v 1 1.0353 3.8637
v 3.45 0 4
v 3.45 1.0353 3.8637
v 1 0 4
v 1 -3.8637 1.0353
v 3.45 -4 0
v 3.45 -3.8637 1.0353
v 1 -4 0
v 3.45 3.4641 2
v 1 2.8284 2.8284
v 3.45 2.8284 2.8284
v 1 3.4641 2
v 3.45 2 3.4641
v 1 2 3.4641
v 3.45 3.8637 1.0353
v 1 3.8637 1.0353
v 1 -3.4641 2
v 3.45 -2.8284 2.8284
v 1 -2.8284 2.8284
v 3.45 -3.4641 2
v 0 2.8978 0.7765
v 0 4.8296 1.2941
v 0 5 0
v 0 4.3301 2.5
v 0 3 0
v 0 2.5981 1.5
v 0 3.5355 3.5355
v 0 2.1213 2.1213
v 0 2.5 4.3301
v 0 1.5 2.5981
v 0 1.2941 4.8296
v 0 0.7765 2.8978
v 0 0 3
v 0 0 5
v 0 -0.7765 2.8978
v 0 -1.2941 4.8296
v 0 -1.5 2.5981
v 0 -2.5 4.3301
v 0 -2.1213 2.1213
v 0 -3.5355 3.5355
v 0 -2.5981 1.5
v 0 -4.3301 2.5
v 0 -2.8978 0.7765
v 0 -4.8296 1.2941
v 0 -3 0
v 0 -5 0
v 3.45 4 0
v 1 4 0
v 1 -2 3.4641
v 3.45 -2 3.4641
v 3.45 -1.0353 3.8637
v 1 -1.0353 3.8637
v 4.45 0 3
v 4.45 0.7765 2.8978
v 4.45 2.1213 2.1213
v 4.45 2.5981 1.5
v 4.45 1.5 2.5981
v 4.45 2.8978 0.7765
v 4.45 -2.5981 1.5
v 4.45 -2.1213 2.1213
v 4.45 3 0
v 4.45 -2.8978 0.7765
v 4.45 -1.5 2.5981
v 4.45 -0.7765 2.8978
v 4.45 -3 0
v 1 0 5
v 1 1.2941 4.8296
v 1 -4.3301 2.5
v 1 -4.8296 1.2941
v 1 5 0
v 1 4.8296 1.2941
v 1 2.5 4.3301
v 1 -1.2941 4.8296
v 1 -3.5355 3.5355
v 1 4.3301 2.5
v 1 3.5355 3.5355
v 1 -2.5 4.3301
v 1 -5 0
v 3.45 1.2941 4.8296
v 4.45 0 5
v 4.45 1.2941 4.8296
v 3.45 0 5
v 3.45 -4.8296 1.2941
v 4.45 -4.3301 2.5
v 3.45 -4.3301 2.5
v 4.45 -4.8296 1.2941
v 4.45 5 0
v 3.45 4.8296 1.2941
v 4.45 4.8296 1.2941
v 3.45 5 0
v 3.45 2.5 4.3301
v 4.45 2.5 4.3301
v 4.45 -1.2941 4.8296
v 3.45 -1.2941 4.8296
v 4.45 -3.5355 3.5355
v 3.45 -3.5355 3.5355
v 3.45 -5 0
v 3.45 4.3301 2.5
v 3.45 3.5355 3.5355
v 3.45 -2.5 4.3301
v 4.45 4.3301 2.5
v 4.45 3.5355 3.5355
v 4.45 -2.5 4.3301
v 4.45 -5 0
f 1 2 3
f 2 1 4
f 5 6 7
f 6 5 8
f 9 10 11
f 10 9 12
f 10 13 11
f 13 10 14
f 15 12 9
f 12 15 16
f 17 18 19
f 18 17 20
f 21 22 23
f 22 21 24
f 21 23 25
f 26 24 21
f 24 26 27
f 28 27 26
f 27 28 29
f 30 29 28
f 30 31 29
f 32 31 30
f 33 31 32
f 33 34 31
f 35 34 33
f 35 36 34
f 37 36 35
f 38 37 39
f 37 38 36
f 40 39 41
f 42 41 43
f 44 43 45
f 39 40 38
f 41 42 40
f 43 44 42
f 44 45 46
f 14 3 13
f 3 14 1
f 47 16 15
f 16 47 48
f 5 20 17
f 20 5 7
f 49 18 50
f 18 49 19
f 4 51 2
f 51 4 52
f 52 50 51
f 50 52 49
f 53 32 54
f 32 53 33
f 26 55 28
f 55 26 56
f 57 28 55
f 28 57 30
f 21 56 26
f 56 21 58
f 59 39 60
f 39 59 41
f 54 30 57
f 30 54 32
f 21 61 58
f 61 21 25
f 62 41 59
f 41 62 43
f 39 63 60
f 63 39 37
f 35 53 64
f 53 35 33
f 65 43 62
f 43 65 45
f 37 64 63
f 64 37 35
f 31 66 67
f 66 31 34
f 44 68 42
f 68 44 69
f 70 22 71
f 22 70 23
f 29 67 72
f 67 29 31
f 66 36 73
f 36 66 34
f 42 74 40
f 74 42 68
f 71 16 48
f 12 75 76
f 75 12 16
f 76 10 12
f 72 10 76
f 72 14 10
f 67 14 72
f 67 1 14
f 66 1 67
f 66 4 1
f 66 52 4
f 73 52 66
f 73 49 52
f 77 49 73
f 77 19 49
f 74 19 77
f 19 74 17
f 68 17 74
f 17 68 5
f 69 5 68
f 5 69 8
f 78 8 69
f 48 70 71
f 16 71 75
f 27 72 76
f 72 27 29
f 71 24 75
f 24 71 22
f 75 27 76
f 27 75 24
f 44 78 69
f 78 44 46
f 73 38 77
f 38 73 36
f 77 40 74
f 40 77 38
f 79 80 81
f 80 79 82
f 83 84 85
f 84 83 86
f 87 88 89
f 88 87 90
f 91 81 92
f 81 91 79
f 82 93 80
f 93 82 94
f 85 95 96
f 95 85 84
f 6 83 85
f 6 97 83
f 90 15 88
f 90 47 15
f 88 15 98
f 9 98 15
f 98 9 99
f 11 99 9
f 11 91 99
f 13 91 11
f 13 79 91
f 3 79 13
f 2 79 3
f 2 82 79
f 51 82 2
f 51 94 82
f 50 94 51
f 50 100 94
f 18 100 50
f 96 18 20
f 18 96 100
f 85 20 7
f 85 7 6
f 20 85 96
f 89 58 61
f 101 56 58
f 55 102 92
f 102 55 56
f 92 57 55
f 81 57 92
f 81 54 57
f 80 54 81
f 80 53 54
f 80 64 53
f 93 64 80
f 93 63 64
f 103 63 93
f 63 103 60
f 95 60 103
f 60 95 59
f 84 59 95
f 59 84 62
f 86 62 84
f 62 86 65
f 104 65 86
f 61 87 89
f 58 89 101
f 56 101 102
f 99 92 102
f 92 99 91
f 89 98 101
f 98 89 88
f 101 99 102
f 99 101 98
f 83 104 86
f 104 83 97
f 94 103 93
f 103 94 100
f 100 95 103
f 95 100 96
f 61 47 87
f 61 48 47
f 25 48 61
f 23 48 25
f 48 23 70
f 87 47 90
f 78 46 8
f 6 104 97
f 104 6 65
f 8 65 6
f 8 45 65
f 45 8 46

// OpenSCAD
// file: ../build_environments.scad
// build_environments.scad: modules to build level sections
//

module pool(diameter=10.0, wall_height=2.0, step_width=3.0, connections=[])
{
    difference() {
        union() {
        difference() {
            cylinder(h=0.5,r1=diameter+step_width,r2=diameter+step_width,$fn=48);
            translate([0,0,-0.1])
                cylinder(h=0.7,r1=diameter,r2=diameter,$fn=48);
        }
        difference() {
            cylinder(h=wall_height,r1=diameter+step_width+1.0,r2=diameter+step_width+1.0,$fn=48);
            translate([0,0,-0.1])
                cylinder(h=wall_height+0.2,r1=diameter+step_width,r2=diameter+step_width,$fn=48);
        }
        }
    
        for (c = connections)
        {
            rotate([0,90,0]) {
                angle = atan2(c[1],c[0]);
                rotate([-angle,0,0]) {
                    cylinder(h=diameter+5.0,r1=c[2],r2=c[2],$fn=48);
                }
            }
        }
    }
}

module straight(length=10.0, width=2.0, dy1=0.0, dy2=0.0, dz=0.0)
{
    dims = [0, 0, 0, 0, 0, (dz/length)];
    matrix = [
        [ 1, dims[0], dims[1], 0 ],
        [ dims[2], 1, dims[4], 0 ],
        [ dims[5], dims[3], 1, 0 ],
        [ 0, 0, 0, 1 ]
    ];
    multmatrix(matrix)
    difference() {
        translate([dy1,0,0])
        union() {
            rotate([0,90,0]) {
                difference() {
                    cylinder(h=(length-dy1-dy2),r1=width+1.0,r2=width+1.0,$fn=24);
                    translate([0,0,-0.1])
                        cylinder(h=(length-dy1-dy2+0.2),r1=width,r2=width,$fn=24);
                }
                difference() {
                    cylinder(h=1.0,r1=width+2.0,r2=width+2.0,$fn=24);
                    translate([0,0,-0.1])
                        cylinder(h=1.2,r1=width,r2=width,$fn=24);
                }
                translate([0,0,(length-dy1-dy2)-1.0]) {
                    difference() {
                        cylinder(h=1.0,r1=width+2.0,r2=width+2.0,$fn=24);
                        translate([0,0,-0.1])
                            cylinder(h=1.2,r1=width,r2=width,$fn=24);
                    }
                }
            }
        }
        translate([0,0,-(2*width+4.0)/2])
            cube([3*length,3*length,2*width+4.0],center=true);
    }
}

module curve(p0=[0,0], center=[0,0], dir=1, angle=0.0, width=2.0)
{
    radius = sqrt((p0[0]-center[0])*(p0[0]-center[0]) + (p0[1]-center[1])*(p0[1]-center[1]));
    if (dir == 0) {
        difference() {
            rotate([0,0,-90])
            difference() {
                rotate_extrude(angle = angle, convexity = 10, $fn=32)
                    translate([radius, 0, 0])
                        circle(r = width+1.0,$fn=24);
                rotate([0,0,-1.0])
                    rotate_extrude(angle = angle+2.0, convexity = 10, $fn=32)
                        translate([radius, 0, 0])
                            circle(r = width,$fn=24);
            }
            translate([0,0,-(2*width+4.0)/2])
                cube([5*radius,5*radius,2*width+4.0],center=true);
        }
    }
    else {
        difference() {
            rotate([0,0,90])
            difference() {
                rotate_extrude(angle = -angle, convexity = 10, $fn=32)
                    translate([radius, 0, 0])
                        circle(r = width+1.0,$fn=24);
                rotate([0,0,1.0])
                    rotate_extrude(angle = -angle-2.0, convexity = 10, $fn=32)
                        translate([radius, 0, 0])
                            circle(r = width,$fn=24);
            }
            translate([0,0,-(2*width+4.0)/2])
                cube([5*radius,5*radius,2*width+4.0],center=true);
        }
    }

}

// test pool
//pool(diameter=12.0000, wall_height=3.0000, step_width=3.0000, connections=[[0.0000,-26.0000,2.0000], [23.6074,0.0000,2.0000]]);

// test straight, slope
//straight(length=26.0000, width=2.0000, dy1=11.8322, dy2=6.7082, dz=0.0000);
//straight(length=29.1549, width=12.0000, dy1=0.0000, dy2=0.0000, dz=-15.0000);

// test curve
//curve(p0=[23.6074, 0.0000], center=[23.6074, 5.0000], dir=0, angle=60.1011, width=2.0000);
//curve(p0=[33.6426, 12.4219], center=[37.9771, 9.9295], dir=1, angle=120.4627, width=2.0000);
// main file
use <../build_environments.scad>;
straight(length=4.4500, width=3.0000, dy1=0.0000, dy2=0.0000, dz=0.0000);
